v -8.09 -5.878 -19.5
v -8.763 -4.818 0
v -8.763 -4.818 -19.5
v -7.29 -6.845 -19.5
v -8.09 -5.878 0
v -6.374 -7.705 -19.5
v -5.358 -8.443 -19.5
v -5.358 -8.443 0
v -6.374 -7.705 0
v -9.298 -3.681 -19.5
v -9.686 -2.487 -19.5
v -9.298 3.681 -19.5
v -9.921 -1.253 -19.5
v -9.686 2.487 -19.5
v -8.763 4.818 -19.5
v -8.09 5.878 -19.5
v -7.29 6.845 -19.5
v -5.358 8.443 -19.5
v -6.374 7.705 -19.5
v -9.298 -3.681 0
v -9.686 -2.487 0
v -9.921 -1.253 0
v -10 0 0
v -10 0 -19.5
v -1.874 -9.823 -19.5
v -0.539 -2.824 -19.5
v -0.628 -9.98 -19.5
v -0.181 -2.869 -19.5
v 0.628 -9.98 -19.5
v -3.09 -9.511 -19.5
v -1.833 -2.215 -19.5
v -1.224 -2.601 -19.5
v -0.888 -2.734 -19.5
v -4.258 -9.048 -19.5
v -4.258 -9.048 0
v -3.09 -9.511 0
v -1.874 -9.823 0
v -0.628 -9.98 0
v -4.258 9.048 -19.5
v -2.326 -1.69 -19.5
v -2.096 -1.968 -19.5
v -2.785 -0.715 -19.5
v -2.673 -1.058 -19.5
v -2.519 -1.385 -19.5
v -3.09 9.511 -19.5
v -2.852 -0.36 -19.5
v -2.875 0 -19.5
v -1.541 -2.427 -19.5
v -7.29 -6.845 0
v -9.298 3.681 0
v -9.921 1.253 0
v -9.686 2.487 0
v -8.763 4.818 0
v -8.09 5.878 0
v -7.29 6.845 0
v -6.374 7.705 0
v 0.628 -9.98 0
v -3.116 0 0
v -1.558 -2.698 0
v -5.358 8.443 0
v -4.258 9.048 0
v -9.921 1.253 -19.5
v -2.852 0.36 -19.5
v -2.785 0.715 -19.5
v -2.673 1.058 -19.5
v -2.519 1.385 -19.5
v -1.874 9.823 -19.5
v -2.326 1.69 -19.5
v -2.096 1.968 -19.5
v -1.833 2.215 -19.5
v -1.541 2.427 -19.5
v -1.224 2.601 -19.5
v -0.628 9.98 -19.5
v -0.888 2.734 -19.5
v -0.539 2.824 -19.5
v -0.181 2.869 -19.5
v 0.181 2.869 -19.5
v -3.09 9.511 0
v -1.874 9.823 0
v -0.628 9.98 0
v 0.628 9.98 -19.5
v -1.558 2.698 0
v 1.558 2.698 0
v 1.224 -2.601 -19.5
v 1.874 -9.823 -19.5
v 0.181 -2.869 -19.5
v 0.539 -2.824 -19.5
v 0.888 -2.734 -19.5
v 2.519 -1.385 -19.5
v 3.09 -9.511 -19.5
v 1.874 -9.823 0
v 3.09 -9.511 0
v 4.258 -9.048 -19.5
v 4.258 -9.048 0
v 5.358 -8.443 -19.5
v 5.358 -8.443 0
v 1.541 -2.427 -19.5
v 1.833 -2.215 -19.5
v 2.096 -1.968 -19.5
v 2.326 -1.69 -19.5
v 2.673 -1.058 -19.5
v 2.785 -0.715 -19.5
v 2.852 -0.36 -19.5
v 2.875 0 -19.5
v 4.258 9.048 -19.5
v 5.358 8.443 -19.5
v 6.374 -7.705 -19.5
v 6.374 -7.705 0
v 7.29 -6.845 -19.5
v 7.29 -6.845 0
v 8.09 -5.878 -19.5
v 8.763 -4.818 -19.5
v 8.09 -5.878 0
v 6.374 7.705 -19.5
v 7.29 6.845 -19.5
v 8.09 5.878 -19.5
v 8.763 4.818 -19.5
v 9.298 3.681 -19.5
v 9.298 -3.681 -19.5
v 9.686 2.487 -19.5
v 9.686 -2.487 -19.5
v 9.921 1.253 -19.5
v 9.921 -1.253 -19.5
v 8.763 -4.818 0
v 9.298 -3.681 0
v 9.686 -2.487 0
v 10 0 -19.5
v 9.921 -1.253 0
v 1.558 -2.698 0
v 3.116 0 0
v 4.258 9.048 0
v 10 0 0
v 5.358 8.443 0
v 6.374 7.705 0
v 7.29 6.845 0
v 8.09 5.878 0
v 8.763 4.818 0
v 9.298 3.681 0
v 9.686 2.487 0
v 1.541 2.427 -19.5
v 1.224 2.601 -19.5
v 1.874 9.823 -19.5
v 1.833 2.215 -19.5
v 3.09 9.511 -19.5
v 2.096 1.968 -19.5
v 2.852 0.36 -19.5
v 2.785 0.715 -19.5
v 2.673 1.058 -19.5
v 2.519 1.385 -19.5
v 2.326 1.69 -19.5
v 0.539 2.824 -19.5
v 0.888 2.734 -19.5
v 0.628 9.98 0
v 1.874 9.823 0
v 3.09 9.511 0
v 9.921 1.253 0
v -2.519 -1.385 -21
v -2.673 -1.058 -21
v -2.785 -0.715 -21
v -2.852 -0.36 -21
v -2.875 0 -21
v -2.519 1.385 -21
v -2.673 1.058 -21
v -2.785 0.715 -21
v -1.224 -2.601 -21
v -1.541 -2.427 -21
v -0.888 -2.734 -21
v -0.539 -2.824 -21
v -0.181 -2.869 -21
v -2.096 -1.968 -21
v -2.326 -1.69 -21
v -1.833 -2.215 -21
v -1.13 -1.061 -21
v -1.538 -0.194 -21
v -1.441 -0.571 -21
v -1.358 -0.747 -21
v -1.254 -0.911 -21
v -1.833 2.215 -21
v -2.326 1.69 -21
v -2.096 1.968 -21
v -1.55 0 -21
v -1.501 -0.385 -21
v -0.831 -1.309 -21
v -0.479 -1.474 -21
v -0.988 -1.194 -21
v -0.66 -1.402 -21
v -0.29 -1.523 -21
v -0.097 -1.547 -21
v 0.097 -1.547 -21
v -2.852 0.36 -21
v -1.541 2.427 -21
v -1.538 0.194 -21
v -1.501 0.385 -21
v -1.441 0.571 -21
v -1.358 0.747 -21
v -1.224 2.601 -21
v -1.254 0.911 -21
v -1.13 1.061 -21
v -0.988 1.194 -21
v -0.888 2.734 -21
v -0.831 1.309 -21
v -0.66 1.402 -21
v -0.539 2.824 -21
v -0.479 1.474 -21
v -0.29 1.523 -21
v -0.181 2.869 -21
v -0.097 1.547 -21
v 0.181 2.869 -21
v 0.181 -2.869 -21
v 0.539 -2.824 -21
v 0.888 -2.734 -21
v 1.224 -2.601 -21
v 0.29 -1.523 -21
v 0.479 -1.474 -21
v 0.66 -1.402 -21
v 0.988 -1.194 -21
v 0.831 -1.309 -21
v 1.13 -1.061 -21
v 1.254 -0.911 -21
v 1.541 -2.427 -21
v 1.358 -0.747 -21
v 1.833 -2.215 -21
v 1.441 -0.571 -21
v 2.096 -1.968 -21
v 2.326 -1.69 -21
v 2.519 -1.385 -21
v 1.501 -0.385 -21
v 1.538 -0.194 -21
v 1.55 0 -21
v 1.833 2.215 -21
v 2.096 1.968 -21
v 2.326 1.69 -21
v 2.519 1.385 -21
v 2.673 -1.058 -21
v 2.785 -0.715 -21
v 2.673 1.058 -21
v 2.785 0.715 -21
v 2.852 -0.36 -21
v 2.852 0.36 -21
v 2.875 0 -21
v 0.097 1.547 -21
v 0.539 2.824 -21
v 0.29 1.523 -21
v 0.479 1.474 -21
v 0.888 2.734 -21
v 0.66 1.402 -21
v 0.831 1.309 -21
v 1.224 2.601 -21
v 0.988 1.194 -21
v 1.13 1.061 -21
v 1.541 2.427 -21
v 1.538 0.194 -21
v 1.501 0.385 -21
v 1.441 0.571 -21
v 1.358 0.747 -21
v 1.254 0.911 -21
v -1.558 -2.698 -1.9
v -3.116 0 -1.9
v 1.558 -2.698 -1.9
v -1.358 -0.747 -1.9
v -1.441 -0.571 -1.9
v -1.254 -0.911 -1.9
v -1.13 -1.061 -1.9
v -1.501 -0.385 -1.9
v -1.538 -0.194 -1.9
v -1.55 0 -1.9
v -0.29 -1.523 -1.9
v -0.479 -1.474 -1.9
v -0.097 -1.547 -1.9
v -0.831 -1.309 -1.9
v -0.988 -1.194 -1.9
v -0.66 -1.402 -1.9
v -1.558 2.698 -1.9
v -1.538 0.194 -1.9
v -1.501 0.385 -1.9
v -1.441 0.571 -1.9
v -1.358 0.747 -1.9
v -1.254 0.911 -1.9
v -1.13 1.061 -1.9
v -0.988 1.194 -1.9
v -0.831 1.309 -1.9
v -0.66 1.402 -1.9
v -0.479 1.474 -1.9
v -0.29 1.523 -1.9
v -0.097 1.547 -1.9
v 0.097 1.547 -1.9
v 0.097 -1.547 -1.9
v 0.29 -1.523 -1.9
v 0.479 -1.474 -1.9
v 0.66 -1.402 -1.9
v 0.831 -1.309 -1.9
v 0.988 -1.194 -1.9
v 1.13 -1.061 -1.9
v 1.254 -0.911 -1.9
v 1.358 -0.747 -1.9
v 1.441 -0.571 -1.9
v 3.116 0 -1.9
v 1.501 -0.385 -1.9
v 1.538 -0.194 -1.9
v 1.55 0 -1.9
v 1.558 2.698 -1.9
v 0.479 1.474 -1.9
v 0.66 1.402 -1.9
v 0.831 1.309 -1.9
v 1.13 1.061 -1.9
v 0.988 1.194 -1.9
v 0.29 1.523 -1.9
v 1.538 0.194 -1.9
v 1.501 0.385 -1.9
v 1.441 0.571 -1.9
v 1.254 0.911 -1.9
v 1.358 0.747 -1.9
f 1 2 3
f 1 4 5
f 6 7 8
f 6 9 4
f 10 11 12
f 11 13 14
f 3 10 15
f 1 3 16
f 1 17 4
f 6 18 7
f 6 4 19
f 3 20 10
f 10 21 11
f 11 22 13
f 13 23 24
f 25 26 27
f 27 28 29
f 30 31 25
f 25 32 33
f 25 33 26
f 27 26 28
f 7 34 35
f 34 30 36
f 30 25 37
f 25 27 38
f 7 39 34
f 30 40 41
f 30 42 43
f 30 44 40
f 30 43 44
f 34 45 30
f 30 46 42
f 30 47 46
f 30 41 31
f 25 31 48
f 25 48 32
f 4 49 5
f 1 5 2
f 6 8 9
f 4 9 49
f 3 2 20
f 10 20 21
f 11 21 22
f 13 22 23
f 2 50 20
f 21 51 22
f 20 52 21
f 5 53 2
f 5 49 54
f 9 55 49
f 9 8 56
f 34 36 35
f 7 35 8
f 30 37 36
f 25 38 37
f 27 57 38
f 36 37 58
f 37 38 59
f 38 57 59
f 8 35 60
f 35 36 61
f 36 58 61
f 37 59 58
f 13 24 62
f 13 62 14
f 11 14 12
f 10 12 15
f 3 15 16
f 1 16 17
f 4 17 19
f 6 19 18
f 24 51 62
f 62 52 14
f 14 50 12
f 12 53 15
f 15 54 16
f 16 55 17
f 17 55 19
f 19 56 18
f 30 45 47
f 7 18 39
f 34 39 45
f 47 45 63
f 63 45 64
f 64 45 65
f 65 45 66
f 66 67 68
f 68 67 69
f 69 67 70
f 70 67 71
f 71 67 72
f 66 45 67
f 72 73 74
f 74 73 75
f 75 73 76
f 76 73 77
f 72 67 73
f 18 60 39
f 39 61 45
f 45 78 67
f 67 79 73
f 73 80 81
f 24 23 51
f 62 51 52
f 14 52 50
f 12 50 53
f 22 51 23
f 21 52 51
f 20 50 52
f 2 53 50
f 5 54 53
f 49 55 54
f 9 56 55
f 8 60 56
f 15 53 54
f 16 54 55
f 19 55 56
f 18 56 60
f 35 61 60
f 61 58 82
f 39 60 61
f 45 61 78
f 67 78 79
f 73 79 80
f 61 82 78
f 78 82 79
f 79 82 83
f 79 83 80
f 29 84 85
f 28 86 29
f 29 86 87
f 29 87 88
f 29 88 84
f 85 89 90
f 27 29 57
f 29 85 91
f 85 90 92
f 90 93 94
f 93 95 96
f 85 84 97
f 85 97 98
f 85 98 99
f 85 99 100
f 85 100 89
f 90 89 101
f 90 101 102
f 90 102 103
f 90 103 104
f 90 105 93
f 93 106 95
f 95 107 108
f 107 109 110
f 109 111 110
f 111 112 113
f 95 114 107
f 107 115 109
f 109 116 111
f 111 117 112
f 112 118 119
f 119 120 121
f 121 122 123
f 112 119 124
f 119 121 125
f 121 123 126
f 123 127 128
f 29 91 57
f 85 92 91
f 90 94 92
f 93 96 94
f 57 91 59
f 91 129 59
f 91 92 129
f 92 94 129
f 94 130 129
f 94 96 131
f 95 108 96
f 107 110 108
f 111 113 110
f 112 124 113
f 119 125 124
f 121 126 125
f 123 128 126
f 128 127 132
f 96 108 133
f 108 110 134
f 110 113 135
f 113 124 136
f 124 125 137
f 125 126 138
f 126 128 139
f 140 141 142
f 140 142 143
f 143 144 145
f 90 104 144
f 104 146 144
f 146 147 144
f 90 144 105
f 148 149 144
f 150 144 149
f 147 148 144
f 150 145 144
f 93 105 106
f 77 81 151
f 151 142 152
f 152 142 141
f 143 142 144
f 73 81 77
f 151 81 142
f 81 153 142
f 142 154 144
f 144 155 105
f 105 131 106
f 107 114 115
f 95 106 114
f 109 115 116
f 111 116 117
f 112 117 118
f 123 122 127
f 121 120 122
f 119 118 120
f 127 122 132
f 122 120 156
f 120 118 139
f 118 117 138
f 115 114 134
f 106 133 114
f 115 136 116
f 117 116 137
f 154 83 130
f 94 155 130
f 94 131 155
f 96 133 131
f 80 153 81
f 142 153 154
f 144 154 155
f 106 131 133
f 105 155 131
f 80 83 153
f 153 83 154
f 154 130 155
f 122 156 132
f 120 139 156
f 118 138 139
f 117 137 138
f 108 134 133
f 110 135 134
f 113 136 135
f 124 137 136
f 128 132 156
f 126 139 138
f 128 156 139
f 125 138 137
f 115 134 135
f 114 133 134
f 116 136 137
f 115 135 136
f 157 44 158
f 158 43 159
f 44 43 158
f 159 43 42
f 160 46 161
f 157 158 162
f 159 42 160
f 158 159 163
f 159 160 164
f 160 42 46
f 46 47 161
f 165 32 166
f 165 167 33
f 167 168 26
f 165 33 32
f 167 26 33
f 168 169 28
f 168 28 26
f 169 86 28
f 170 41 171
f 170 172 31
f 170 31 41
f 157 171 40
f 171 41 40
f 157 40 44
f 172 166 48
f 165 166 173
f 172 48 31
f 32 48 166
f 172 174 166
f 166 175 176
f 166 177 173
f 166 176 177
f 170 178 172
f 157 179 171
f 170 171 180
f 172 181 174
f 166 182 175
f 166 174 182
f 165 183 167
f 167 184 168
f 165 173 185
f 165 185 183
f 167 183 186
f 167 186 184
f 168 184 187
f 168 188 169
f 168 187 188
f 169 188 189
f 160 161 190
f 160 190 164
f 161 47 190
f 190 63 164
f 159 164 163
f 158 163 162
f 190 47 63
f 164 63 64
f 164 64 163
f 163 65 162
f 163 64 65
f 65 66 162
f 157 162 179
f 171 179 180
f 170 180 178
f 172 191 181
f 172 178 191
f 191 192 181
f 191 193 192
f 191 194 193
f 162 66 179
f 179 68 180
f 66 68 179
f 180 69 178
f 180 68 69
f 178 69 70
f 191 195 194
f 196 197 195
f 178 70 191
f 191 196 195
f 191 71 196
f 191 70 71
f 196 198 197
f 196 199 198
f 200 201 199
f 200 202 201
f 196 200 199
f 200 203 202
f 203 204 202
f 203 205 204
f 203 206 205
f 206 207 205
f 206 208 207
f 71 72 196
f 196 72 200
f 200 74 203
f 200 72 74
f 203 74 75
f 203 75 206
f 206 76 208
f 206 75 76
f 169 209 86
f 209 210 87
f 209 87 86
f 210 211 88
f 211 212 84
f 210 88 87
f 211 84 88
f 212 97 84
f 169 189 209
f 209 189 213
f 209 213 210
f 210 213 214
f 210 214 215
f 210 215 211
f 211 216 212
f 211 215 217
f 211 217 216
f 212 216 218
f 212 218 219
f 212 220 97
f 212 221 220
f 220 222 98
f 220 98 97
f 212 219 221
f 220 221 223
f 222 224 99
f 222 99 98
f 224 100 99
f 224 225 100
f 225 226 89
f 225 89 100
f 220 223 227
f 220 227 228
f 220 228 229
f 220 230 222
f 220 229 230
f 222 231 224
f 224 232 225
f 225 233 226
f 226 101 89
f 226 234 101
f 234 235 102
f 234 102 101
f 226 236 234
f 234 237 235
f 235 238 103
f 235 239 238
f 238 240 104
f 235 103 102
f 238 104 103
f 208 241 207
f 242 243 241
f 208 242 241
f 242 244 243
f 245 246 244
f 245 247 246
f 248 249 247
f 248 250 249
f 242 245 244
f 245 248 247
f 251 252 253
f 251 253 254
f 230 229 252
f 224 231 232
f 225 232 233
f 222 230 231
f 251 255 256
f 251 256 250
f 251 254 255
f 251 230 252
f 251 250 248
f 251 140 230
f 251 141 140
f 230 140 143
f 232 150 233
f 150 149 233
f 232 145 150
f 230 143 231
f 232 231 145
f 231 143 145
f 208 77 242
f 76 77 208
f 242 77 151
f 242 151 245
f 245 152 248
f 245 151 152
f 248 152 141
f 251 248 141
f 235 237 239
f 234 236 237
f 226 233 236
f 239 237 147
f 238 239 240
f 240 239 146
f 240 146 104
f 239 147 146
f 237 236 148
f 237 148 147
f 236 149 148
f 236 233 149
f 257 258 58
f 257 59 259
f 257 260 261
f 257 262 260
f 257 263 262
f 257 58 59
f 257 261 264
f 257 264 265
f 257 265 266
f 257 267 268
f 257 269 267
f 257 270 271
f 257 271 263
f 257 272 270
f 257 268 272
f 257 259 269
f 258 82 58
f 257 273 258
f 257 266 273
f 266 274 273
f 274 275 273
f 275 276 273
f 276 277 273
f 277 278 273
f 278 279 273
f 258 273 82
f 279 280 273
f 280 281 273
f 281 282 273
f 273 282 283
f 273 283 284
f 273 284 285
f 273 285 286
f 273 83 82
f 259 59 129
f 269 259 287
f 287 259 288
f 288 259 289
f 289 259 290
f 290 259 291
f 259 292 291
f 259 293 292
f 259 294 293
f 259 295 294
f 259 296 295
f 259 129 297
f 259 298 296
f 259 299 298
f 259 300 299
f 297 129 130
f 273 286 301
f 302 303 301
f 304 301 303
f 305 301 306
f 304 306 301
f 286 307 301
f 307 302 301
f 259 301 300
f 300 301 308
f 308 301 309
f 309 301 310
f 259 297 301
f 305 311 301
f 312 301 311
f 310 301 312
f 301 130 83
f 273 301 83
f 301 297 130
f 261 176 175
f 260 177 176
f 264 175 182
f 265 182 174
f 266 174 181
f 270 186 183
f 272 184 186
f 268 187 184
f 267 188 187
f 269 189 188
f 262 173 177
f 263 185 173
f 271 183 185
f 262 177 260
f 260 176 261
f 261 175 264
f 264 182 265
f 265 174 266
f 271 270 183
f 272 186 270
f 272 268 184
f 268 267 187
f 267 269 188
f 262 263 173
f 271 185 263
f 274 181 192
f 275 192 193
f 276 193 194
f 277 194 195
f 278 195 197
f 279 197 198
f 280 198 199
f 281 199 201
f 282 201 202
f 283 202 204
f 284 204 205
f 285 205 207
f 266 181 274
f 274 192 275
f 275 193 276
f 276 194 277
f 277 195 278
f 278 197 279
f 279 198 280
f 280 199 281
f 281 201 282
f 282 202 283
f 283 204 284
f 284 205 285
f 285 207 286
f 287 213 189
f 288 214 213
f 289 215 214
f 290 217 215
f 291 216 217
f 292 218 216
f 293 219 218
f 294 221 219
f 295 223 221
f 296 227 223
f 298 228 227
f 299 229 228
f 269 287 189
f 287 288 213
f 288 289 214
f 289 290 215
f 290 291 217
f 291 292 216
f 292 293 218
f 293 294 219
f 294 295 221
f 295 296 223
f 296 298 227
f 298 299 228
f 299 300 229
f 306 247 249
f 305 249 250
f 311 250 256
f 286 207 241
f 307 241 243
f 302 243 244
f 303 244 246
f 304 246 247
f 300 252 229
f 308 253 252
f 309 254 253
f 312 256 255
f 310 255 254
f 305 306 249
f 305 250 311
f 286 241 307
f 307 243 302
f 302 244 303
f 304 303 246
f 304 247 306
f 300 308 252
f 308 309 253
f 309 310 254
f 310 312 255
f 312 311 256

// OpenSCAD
$fn = 50;

difference() {
	union() {
		translate(v = [0, 0, -19.5]) {
			cylinder(h = 19.5, r = 10.0);
		}
		#translate(v = [0, 0, -21.0]) {
			cylinder(h = 21, r = 2.875);
		}
	}
	union() {
		translate(v = [0, 0, 0]) {
			rotate(a = [0, 0, 0]) {
				difference() {
					union() {
						translate(v = [0, 0, -1.9]) {
							linear_extrude(height = 1.9) {
								polygon(points = [[3.1158, 0.0], [1.5579000000000005, 2.698361953111554], [-1.5578999999999994, 2.6983619531115544], [-3.1158, 3.815754496783323e-16], [-1.5579000000000014, -2.6983619531115535], [1.557899999999998, -2.6983619531115552]]);
							}
						}
					}
					union();
				}
			}
		}
		#translate(v = [0, 0, -100.0]) {
			cylinder(h = 200, r = 1.55);
		}
	}
}
